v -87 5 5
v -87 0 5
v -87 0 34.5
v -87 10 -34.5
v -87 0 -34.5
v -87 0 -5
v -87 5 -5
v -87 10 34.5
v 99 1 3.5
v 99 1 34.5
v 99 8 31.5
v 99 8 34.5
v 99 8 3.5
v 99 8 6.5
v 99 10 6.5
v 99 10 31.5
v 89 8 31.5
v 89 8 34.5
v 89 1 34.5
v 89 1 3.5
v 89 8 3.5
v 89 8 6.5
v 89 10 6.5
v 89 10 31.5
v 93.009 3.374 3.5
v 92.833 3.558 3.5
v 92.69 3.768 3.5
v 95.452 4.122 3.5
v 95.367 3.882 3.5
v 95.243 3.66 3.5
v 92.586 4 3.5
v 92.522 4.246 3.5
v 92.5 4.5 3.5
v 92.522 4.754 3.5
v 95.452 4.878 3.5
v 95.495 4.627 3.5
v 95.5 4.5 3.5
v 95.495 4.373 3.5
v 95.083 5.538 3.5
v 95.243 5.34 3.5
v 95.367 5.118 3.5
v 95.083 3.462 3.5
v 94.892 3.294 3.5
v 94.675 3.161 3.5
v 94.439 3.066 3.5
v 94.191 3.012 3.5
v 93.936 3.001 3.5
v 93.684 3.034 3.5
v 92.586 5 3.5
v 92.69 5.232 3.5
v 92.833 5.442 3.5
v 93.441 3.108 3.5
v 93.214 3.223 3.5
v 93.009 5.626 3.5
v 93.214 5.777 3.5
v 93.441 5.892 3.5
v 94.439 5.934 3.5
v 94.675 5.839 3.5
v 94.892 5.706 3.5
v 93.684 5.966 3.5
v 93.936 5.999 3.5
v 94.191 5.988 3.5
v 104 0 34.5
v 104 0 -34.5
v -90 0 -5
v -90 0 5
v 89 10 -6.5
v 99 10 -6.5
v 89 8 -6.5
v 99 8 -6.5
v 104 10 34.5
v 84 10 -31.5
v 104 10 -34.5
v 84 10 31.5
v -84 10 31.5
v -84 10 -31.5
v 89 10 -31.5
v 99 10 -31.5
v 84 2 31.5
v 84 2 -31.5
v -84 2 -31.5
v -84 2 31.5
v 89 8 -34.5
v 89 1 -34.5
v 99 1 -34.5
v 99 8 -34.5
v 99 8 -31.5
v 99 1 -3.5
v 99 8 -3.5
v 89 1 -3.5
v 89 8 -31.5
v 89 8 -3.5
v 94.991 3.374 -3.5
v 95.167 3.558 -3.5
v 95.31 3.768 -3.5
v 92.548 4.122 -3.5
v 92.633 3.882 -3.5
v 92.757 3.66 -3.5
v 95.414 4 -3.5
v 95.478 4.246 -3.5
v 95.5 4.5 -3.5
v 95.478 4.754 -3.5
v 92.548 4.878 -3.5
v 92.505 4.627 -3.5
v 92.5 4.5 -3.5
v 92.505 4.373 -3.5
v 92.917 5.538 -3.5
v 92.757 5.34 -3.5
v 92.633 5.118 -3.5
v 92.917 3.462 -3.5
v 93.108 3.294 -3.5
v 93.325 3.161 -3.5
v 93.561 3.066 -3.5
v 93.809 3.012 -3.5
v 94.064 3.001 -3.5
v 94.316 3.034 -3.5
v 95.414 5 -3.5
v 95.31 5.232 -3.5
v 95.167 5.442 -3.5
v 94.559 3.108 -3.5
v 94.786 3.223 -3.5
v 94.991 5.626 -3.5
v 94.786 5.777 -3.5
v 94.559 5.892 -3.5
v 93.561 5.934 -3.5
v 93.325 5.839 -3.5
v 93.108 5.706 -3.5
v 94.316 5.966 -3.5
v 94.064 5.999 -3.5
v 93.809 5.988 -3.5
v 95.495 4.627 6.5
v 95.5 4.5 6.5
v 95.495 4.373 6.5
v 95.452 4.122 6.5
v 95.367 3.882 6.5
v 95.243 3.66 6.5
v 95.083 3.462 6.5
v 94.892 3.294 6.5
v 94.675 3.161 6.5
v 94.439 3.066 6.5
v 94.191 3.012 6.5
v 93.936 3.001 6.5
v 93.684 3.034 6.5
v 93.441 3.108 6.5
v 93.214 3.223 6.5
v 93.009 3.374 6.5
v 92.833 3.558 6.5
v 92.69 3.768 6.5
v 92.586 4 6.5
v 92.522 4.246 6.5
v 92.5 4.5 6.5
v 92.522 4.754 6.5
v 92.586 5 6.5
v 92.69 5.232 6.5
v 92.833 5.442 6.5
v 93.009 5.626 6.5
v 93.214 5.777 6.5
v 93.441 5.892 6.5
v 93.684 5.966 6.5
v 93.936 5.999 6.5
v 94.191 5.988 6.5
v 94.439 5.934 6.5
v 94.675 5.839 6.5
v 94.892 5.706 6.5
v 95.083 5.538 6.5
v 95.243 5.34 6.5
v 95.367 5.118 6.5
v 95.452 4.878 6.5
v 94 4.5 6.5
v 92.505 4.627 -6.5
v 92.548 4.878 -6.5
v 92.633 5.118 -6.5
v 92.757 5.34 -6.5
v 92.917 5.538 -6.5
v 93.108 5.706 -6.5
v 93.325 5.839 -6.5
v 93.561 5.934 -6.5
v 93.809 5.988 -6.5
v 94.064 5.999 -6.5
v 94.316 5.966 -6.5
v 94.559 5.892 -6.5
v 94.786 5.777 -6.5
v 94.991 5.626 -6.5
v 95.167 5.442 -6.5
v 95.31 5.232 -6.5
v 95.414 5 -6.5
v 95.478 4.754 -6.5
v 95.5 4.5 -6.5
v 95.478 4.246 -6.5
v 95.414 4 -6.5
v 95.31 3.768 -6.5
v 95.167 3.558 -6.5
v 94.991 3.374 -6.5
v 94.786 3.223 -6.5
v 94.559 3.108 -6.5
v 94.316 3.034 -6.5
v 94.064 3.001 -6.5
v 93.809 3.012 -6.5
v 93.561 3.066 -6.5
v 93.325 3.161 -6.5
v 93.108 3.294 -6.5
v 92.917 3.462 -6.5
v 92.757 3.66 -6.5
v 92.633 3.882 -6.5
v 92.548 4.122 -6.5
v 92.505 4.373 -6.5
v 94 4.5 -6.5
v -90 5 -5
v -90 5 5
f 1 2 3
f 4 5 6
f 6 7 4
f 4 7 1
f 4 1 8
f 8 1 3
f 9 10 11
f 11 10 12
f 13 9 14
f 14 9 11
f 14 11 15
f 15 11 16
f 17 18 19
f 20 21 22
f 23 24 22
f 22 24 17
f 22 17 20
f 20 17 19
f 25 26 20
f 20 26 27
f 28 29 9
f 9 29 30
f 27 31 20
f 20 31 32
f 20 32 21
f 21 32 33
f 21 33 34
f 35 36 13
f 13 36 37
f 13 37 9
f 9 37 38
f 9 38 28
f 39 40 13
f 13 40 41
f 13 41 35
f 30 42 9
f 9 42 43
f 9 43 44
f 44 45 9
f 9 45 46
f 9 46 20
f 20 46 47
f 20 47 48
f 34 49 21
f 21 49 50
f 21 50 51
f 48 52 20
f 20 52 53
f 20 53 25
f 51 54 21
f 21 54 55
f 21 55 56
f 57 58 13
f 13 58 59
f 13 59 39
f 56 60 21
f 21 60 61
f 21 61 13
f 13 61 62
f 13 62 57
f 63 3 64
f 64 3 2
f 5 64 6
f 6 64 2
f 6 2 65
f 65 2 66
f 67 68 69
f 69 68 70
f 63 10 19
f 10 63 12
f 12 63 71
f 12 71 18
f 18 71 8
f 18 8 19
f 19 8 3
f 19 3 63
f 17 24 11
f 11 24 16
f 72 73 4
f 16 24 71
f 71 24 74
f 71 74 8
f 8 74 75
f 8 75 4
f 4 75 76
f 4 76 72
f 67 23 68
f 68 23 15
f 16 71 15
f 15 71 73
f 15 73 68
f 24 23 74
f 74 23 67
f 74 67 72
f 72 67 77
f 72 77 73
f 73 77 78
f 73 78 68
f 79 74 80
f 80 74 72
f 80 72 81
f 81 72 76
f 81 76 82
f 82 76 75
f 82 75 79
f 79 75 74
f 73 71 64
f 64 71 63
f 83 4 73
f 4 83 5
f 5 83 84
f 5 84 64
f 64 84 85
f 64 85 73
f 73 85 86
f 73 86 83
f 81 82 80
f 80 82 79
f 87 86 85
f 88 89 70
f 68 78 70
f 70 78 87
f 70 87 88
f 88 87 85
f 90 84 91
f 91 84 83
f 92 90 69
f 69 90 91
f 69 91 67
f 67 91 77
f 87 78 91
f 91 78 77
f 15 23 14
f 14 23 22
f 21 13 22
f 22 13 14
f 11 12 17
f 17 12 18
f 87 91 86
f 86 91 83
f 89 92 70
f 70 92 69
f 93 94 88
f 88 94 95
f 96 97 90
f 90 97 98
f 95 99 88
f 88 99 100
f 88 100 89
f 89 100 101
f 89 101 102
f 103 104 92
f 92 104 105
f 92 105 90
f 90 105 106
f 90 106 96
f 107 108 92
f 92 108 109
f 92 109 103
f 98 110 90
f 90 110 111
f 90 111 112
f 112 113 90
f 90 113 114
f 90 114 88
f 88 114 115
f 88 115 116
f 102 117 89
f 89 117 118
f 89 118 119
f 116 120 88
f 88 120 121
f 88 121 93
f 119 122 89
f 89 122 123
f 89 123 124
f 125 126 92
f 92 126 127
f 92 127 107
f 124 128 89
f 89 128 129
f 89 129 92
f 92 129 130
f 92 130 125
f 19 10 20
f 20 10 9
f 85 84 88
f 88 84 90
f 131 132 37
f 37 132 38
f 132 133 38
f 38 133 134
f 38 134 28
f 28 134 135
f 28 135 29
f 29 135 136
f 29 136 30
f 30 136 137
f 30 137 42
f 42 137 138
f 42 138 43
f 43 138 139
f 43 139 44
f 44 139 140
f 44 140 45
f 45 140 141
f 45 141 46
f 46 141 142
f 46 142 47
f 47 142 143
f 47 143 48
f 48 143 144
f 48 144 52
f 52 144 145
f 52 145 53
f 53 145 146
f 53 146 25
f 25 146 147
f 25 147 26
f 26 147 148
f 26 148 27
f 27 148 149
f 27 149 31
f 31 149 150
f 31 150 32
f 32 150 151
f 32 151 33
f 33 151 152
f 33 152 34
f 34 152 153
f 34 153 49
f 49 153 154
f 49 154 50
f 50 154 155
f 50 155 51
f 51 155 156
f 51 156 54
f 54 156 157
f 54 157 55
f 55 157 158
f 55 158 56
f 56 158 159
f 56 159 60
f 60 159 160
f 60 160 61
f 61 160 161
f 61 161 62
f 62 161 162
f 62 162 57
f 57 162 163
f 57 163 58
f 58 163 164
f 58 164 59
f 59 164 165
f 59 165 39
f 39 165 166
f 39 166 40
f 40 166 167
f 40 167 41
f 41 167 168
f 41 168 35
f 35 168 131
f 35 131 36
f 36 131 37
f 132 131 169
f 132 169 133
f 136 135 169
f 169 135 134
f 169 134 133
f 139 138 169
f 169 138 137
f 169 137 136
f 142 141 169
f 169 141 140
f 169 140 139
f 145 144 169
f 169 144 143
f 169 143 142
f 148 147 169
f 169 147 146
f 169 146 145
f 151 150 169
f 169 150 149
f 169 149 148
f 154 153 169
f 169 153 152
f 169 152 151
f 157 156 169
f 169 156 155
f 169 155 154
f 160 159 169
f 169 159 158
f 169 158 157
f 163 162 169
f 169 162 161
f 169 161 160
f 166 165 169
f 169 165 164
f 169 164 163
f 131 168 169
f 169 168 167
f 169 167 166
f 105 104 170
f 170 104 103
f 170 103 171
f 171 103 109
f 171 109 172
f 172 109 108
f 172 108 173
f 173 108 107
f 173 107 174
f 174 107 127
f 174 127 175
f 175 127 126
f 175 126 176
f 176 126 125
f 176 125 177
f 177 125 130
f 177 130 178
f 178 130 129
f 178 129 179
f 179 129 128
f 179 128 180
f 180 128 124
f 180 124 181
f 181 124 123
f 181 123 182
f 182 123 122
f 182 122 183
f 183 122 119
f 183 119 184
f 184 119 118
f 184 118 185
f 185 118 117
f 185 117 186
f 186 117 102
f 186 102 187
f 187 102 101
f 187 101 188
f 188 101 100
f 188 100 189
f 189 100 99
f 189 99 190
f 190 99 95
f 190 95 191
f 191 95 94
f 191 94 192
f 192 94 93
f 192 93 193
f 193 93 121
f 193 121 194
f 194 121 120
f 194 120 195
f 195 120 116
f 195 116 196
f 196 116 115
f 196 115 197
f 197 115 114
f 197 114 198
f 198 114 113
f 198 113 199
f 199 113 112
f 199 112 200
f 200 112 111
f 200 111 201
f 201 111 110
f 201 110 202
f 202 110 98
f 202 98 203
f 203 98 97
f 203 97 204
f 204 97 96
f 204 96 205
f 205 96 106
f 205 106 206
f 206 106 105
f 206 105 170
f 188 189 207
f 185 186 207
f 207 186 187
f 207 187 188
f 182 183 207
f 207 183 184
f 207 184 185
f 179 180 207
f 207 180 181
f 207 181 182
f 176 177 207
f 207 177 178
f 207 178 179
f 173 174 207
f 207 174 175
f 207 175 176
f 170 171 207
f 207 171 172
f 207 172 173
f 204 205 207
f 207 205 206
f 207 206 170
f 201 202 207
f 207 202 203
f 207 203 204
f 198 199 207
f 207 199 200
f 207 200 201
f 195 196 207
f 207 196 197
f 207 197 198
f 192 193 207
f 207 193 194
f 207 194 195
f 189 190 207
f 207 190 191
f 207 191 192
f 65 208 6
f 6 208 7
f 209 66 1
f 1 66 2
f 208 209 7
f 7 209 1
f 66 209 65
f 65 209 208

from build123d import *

# Parameters (mm, degrees)
SKETCH1_W                      = 168
SKETCH1_H                      = 63
BOSS_EXTRUDE1_DEPTH            = 10
SKETCH2_W                      = 168
SKETCH2_H                      = 63
BOSS_EXTRUDE2_DEPTH            = 2
SKETCH3_W                      = 10
SKETCH3_H                      = 25
CUT_EXTRUDE1_DEPTH             = 111.028405423
SKETCH4_W                      = 10
SKETCH4_H                      = 8
CUT_EXTRUDE2_DEPTH             = 3
CUT_EXTRUDE2_DIRECTION_2_REACH = 114.236
SKETCH6_W                      = 10
SKETCH6_H                      = 1
BOSS_EXTRUDE4_DEPTH            = 31
SKETCH7_R                      = 1.5
BOSS_EXTRUDE5_DEPTH            = 3
SKETCH8_W                      = 10
SKETCH8_H                      = 5
BOSS_EXTRUDE6_DEPTH            = 3


with BuildPart() as part:
    # Sketch1 → Boss-Extrude1 (new body)
    with BuildSketch(Plane(origin=(0, 0, 0), x_dir=(1, 0, 0), z_dir=(0, 1, 0))):
        Polygon((0, 34.5), (-87, 34.5), (-87, -34.5), (84, -34.5), (104, -34.5), (104, 34.5), (84, 34.5), align=None)
        Rectangle(SKETCH1_W, SKETCH1_H, mode=Mode.SUBTRACT)
    extrude(amount=BOSS_EXTRUDE1_DEPTH)

    # Sketch2 → Boss-Extrude2 (add)
    with BuildSketch(Plane(origin=(0, 0, 0), x_dir=(1, 0, 0), z_dir=(0, 1, 0))):
        Rectangle(SKETCH2_W, SKETCH2_H)
    extrude(amount=BOSS_EXTRUDE2_DEPTH)

    # Sketch3 → Cut-Extrude1 (cut, through all)
    with BuildSketch(Plane(origin=(0, 10, 0), x_dir=(1, 0, 0), z_dir=(0, 1, 0))):
        with Locations((94, 19)):
            Rectangle(SKETCH3_W, SKETCH3_H)
    cut_extrude1 = extrude(amount=-CUT_EXTRUDE1_DEPTH, mode=Mode.SUBTRACT)

    # Mirror1: Cut-Extrude1 across plane
    add(cut_extrude1.mirror(Plane.XY), mode=Mode.SUBTRACT)

    # Sketch4 → Cut-Extrude2 (cut)
    with BuildSketch(Plane.XY.offset(6.5)):
        with Locations((94, 4)):
            Rectangle(SKETCH4_W, SKETCH4_H)
    cut_extrude2 = extrude(amount=-CUT_EXTRUDE2_DEPTH, mode=Mode.SUBTRACT)

    # Sketch4 → Cut-Extrude2 direction 2 (cut, up to next)
    with BuildSketch(Plane.XY.offset(6.5), mode=Mode.PRIVATE) as cut_extrude2_direction_2_sk1:
        with Locations((94, 4)):
            Rectangle(SKETCH4_W, SKETCH4_H)
    cut_extrude2_direction_2_tool1 = extrude(cut_extrude2_direction_2_sk1.sketch, amount=CUT_EXTRUDE2_DIRECTION_2_REACH, mode=Mode.PRIVATE) & part.part
    cut_extrude2_direction_2 = cut_extrude2_direction_2_tool1.solids().sort_by_distance((94, 4, 6.5))[0]
    add(cut_extrude2_direction_2, mode=Mode.SUBTRACT)

    # Mirror2: Cut-Extrude2, Cut-Extrude2 direction 2 across plane
    add(cut_extrude2.mirror(Plane.XY), mode=Mode.SUBTRACT)
    add(cut_extrude2_direction_2.mirror(Plane.XY), mode=Mode.SUBTRACT)

    # Sketch6 → Boss-Extrude4 (add)
    with BuildSketch(Plane.XY.offset(3.5)):
        with Locations((94, 0.5)):
            Rectangle(SKETCH6_W, SKETCH6_H)
    boss_extrude4 = extrude(amount=BOSS_EXTRUDE4_DEPTH)

    # Mirror5: Boss-Extrude4 across plane
    add(boss_extrude4.mirror(Plane.XY))

    # Sketch7 → Boss-Extrude5 (add)
    with BuildSketch(Plane.XY.offset(3.5)):
        with Locations((94, 4.5)):
            Circle(SKETCH7_R)
    boss_extrude5 = extrude(amount=BOSS_EXTRUDE5_DEPTH)

    # Mirror6: Boss-Extrude5 across plane
    add(boss_extrude5.mirror(Plane.XY))

    # Sketch8 → Boss-Extrude6 (add)
    with BuildSketch(Plane.ZY.offset(87)):
        with Locations((0, 2.5)):
            Rectangle(SKETCH8_W, SKETCH8_H)
    extrude(amount=BOSS_EXTRUDE6_DEPTH)


solid = part.part
